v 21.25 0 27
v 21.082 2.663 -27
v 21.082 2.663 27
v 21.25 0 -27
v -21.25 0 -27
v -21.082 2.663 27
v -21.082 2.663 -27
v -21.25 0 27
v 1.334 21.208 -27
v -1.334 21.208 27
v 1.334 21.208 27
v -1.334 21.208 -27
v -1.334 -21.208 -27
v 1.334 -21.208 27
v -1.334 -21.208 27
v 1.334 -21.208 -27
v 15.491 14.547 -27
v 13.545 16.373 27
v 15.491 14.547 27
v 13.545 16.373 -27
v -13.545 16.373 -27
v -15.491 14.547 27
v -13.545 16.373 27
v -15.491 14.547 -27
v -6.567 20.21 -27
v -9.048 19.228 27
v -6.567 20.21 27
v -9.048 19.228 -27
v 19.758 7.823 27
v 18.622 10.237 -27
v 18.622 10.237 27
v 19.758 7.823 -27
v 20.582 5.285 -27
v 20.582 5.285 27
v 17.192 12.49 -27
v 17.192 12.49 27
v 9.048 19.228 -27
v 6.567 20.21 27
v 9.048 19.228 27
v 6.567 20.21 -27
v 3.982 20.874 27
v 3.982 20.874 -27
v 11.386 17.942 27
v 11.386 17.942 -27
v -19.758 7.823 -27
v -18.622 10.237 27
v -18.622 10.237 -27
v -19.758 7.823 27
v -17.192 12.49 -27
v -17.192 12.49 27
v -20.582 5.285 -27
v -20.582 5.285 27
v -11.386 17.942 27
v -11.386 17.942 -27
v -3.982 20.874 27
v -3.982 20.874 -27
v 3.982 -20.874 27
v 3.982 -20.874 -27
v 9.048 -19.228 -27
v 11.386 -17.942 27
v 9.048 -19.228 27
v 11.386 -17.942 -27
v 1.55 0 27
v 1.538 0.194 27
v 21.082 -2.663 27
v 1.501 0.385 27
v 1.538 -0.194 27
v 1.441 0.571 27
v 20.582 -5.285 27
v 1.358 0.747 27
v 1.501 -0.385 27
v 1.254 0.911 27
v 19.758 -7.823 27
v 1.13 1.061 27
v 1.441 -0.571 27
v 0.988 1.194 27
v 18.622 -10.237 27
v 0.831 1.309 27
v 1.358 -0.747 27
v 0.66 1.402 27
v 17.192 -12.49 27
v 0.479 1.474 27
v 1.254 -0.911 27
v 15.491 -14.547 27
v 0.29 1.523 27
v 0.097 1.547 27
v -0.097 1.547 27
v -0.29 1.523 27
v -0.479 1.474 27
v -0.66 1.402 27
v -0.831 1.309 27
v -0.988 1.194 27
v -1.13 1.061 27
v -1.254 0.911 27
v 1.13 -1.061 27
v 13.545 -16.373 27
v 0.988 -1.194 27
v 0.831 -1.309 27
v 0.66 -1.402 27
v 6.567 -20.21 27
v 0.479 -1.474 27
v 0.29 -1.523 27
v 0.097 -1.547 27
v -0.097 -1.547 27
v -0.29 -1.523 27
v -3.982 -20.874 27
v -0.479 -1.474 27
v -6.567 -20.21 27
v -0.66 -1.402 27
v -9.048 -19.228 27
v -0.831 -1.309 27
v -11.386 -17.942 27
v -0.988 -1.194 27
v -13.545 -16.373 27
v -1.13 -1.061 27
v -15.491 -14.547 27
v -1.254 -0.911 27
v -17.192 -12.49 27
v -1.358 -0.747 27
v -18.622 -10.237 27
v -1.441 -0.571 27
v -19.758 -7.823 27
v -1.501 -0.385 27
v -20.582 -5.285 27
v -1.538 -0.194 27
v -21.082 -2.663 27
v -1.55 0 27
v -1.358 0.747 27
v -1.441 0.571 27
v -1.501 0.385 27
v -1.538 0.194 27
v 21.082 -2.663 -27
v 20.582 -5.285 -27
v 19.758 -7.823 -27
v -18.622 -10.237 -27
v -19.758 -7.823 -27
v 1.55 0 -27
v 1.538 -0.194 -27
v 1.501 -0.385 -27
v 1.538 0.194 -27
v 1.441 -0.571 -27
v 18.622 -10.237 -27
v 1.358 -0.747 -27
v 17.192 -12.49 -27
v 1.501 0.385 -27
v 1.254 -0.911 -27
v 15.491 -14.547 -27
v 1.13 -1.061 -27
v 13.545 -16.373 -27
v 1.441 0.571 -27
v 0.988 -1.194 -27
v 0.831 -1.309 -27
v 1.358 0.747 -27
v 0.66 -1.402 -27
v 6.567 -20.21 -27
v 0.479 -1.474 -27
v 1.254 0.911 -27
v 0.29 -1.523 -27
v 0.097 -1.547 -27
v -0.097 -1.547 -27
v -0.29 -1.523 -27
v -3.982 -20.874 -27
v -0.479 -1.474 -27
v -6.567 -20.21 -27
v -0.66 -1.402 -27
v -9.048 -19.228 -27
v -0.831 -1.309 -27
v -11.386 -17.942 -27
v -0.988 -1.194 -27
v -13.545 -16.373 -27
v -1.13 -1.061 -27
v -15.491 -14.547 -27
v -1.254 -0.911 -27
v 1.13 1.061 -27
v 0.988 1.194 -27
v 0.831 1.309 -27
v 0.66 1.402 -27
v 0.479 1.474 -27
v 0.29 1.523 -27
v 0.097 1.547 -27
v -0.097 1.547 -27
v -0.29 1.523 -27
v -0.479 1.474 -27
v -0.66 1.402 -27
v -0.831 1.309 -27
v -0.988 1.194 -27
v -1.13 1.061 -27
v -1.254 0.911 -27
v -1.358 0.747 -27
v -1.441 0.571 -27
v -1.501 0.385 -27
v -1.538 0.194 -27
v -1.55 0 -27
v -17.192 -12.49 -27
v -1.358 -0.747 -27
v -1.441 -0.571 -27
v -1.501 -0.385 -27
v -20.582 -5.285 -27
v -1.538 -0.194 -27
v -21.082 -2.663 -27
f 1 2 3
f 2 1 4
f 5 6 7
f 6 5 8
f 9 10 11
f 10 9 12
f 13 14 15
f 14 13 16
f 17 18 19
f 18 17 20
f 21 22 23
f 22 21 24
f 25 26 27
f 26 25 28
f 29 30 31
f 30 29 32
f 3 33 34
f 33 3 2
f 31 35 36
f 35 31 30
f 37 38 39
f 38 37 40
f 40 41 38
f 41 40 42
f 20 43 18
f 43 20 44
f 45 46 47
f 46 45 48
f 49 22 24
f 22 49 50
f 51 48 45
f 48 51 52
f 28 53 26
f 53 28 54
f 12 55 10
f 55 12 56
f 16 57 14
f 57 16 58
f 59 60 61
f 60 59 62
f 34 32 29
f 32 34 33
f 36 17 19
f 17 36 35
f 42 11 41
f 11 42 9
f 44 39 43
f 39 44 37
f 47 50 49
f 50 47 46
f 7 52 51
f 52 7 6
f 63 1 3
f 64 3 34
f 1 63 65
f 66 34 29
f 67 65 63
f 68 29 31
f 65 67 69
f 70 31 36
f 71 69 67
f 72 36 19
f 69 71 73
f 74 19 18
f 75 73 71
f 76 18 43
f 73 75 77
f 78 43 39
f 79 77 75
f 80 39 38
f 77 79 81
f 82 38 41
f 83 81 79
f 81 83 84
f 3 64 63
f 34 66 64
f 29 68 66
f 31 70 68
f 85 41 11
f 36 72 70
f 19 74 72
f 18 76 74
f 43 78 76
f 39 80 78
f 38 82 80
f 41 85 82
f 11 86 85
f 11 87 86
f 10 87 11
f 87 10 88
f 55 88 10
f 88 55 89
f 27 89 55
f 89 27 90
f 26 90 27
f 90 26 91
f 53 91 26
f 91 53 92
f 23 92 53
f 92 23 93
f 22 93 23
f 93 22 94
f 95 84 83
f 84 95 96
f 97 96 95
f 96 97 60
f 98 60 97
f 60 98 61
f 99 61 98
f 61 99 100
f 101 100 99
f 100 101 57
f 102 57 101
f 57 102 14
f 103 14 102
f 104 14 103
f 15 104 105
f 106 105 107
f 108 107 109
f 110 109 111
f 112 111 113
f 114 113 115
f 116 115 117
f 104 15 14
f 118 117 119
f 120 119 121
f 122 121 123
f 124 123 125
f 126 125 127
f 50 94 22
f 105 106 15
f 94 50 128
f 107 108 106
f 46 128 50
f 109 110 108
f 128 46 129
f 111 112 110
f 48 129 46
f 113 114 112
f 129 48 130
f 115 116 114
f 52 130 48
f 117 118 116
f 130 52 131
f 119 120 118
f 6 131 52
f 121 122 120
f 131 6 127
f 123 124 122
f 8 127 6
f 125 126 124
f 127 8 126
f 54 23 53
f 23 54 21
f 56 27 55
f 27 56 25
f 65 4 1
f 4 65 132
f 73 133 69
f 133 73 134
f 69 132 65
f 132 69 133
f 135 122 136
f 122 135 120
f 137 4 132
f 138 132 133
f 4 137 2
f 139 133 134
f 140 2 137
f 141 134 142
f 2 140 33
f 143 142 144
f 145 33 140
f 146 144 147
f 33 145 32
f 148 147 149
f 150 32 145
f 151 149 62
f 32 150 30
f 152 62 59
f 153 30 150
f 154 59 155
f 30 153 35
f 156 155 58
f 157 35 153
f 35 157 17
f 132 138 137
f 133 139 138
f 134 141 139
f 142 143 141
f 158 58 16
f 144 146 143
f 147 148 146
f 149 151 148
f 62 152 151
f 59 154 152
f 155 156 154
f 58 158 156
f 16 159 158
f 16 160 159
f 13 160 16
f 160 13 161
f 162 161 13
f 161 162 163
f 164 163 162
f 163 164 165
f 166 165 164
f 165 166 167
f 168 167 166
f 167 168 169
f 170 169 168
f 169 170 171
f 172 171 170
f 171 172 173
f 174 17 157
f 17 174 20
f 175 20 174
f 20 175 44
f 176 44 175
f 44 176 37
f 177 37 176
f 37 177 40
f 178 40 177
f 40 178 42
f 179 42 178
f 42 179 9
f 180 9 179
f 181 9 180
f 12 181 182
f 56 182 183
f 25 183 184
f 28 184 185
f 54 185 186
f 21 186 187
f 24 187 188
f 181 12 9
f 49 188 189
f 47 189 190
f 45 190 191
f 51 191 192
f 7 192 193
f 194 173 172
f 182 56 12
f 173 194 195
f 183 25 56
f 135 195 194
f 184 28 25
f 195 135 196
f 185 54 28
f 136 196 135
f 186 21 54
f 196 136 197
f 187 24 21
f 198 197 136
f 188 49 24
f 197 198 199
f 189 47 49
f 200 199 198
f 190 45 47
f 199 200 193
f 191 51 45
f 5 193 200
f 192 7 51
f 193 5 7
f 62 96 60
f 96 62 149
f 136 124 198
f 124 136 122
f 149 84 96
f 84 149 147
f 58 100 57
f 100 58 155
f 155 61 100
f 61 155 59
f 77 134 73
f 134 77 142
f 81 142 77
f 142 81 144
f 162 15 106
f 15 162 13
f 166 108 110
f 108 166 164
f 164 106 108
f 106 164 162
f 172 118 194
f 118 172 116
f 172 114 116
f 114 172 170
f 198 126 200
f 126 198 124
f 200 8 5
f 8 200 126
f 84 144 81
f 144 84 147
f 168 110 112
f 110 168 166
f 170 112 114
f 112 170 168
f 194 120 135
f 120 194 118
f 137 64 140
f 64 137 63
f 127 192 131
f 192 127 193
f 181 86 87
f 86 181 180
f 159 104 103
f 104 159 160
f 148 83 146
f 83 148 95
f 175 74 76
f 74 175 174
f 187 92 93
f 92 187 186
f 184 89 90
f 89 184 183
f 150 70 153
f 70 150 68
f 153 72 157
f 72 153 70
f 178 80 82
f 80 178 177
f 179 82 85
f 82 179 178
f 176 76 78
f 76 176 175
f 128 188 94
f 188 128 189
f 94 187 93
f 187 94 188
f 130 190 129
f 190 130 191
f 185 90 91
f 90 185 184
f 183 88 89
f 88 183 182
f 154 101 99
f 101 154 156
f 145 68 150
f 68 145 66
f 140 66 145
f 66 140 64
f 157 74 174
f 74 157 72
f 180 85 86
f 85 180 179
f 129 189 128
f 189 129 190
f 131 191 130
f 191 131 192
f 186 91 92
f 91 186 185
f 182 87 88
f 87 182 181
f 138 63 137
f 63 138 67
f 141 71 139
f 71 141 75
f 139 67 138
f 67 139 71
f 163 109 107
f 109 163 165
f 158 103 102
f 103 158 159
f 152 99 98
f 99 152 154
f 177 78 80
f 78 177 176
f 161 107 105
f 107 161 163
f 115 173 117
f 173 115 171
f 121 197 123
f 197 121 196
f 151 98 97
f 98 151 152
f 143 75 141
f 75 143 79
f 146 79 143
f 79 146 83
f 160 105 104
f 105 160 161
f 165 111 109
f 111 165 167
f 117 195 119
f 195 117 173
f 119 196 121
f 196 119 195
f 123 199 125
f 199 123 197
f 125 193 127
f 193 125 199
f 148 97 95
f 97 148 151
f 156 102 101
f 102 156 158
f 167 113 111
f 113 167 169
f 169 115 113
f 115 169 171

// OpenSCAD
$fn = 50;


difference() {
	union() {
		translate(v = [0, 0, -27.0000000000]) {
			cylinder(h = 54, r = 21.2500000000);
		}
	}
	union() {
		translate(v = [0, 0, -100.0000000000]) {
			cylinder(h = 200, r = 1.5500000000);
		}
	}
}
